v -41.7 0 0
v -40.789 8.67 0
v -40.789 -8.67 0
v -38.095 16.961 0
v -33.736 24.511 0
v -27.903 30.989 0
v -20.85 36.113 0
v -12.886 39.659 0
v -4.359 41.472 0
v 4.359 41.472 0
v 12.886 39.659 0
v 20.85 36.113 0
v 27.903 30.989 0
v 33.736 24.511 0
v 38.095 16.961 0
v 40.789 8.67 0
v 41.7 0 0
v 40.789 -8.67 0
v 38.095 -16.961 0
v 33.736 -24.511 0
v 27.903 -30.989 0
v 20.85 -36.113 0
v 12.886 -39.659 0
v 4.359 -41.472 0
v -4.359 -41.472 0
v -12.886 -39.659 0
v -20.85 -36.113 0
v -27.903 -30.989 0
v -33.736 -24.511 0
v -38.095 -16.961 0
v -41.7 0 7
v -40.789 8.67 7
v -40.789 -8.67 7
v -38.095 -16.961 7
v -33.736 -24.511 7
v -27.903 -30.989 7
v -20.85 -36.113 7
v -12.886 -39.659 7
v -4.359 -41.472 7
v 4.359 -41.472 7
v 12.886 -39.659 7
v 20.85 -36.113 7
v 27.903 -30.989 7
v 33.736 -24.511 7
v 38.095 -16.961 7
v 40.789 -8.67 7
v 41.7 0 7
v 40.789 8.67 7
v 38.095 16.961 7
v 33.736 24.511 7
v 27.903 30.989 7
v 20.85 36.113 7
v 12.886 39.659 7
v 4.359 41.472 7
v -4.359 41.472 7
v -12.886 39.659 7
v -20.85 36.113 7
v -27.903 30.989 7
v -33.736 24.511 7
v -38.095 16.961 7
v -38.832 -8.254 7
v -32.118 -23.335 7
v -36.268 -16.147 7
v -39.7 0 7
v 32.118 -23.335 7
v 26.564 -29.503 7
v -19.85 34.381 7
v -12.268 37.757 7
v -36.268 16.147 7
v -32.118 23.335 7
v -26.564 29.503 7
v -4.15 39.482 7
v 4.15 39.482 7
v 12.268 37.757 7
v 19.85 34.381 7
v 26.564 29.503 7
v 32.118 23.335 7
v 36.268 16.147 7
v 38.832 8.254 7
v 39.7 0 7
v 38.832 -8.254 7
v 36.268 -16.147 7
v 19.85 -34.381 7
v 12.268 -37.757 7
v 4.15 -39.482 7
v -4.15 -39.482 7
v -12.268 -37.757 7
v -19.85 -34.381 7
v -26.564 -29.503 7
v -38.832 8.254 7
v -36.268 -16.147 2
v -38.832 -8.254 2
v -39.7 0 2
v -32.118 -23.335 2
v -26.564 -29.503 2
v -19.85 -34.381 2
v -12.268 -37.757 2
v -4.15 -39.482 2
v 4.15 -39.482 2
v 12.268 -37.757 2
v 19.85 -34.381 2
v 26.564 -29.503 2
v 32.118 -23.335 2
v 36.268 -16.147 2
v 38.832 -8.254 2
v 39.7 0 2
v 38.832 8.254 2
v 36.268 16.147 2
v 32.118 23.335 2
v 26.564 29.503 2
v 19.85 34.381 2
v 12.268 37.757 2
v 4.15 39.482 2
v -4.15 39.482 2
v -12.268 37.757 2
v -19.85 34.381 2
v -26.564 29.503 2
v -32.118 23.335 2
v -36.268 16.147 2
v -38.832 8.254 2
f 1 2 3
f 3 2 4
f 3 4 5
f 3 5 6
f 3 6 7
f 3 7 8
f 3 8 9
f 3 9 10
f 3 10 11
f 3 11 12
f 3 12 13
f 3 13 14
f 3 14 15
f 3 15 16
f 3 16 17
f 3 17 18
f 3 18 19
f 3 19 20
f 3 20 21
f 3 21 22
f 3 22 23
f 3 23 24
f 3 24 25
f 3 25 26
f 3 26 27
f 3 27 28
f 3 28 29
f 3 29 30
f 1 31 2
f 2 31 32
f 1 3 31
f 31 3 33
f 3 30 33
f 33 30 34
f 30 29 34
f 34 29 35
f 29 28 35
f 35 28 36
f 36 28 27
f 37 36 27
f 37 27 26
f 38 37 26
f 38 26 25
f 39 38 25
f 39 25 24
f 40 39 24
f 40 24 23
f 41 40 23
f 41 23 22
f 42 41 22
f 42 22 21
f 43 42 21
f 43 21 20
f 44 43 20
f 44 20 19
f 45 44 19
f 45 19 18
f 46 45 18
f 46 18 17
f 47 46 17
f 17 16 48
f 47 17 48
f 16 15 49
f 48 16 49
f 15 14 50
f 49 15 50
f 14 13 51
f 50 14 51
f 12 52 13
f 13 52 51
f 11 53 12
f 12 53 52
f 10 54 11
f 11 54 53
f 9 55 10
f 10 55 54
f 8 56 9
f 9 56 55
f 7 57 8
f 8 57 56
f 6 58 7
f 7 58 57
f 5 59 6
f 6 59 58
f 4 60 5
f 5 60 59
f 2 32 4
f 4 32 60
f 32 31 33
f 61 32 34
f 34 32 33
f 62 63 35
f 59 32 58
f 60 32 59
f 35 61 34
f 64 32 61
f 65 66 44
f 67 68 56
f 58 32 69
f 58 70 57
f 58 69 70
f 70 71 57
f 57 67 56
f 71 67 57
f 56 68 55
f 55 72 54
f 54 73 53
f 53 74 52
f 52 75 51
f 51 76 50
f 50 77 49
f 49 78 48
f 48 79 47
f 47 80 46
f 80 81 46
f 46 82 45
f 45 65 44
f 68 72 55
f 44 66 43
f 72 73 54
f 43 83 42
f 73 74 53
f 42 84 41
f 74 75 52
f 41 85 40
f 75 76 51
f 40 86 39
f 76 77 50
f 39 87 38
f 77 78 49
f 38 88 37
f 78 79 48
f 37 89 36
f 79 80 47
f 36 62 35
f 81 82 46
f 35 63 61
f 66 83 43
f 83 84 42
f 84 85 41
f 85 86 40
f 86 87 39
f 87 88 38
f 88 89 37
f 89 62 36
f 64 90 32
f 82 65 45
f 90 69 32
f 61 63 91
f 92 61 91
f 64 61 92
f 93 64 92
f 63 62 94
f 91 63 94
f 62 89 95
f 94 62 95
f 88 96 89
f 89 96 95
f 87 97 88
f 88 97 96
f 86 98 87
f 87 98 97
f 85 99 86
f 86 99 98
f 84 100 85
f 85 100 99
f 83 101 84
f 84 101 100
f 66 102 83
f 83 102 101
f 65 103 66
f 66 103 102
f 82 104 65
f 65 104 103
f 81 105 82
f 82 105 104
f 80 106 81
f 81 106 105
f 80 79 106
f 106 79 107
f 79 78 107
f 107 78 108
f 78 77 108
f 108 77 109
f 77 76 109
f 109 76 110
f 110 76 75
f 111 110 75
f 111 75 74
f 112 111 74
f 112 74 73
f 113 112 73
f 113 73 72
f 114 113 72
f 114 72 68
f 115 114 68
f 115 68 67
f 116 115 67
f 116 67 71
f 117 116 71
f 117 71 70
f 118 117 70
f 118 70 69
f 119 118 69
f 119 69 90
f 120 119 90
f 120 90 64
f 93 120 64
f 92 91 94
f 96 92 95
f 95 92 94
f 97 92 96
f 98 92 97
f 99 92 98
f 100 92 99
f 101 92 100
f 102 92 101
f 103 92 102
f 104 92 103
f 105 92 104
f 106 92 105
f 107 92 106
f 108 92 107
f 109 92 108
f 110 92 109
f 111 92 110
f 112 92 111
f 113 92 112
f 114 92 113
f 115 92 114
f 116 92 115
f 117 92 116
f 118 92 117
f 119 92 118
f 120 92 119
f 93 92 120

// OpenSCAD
HEIGHT=7;
INSIDE_DIAM=39.7;
THICKNESS=2;
difference() {
    cylinder(h=HEIGHT, r=INSIDE_DIAM+THICKNESS);
    translate([0,0,THICKNESS]) cylinder(h=HEIGHT, r=INSIDE_DIAM);
}
